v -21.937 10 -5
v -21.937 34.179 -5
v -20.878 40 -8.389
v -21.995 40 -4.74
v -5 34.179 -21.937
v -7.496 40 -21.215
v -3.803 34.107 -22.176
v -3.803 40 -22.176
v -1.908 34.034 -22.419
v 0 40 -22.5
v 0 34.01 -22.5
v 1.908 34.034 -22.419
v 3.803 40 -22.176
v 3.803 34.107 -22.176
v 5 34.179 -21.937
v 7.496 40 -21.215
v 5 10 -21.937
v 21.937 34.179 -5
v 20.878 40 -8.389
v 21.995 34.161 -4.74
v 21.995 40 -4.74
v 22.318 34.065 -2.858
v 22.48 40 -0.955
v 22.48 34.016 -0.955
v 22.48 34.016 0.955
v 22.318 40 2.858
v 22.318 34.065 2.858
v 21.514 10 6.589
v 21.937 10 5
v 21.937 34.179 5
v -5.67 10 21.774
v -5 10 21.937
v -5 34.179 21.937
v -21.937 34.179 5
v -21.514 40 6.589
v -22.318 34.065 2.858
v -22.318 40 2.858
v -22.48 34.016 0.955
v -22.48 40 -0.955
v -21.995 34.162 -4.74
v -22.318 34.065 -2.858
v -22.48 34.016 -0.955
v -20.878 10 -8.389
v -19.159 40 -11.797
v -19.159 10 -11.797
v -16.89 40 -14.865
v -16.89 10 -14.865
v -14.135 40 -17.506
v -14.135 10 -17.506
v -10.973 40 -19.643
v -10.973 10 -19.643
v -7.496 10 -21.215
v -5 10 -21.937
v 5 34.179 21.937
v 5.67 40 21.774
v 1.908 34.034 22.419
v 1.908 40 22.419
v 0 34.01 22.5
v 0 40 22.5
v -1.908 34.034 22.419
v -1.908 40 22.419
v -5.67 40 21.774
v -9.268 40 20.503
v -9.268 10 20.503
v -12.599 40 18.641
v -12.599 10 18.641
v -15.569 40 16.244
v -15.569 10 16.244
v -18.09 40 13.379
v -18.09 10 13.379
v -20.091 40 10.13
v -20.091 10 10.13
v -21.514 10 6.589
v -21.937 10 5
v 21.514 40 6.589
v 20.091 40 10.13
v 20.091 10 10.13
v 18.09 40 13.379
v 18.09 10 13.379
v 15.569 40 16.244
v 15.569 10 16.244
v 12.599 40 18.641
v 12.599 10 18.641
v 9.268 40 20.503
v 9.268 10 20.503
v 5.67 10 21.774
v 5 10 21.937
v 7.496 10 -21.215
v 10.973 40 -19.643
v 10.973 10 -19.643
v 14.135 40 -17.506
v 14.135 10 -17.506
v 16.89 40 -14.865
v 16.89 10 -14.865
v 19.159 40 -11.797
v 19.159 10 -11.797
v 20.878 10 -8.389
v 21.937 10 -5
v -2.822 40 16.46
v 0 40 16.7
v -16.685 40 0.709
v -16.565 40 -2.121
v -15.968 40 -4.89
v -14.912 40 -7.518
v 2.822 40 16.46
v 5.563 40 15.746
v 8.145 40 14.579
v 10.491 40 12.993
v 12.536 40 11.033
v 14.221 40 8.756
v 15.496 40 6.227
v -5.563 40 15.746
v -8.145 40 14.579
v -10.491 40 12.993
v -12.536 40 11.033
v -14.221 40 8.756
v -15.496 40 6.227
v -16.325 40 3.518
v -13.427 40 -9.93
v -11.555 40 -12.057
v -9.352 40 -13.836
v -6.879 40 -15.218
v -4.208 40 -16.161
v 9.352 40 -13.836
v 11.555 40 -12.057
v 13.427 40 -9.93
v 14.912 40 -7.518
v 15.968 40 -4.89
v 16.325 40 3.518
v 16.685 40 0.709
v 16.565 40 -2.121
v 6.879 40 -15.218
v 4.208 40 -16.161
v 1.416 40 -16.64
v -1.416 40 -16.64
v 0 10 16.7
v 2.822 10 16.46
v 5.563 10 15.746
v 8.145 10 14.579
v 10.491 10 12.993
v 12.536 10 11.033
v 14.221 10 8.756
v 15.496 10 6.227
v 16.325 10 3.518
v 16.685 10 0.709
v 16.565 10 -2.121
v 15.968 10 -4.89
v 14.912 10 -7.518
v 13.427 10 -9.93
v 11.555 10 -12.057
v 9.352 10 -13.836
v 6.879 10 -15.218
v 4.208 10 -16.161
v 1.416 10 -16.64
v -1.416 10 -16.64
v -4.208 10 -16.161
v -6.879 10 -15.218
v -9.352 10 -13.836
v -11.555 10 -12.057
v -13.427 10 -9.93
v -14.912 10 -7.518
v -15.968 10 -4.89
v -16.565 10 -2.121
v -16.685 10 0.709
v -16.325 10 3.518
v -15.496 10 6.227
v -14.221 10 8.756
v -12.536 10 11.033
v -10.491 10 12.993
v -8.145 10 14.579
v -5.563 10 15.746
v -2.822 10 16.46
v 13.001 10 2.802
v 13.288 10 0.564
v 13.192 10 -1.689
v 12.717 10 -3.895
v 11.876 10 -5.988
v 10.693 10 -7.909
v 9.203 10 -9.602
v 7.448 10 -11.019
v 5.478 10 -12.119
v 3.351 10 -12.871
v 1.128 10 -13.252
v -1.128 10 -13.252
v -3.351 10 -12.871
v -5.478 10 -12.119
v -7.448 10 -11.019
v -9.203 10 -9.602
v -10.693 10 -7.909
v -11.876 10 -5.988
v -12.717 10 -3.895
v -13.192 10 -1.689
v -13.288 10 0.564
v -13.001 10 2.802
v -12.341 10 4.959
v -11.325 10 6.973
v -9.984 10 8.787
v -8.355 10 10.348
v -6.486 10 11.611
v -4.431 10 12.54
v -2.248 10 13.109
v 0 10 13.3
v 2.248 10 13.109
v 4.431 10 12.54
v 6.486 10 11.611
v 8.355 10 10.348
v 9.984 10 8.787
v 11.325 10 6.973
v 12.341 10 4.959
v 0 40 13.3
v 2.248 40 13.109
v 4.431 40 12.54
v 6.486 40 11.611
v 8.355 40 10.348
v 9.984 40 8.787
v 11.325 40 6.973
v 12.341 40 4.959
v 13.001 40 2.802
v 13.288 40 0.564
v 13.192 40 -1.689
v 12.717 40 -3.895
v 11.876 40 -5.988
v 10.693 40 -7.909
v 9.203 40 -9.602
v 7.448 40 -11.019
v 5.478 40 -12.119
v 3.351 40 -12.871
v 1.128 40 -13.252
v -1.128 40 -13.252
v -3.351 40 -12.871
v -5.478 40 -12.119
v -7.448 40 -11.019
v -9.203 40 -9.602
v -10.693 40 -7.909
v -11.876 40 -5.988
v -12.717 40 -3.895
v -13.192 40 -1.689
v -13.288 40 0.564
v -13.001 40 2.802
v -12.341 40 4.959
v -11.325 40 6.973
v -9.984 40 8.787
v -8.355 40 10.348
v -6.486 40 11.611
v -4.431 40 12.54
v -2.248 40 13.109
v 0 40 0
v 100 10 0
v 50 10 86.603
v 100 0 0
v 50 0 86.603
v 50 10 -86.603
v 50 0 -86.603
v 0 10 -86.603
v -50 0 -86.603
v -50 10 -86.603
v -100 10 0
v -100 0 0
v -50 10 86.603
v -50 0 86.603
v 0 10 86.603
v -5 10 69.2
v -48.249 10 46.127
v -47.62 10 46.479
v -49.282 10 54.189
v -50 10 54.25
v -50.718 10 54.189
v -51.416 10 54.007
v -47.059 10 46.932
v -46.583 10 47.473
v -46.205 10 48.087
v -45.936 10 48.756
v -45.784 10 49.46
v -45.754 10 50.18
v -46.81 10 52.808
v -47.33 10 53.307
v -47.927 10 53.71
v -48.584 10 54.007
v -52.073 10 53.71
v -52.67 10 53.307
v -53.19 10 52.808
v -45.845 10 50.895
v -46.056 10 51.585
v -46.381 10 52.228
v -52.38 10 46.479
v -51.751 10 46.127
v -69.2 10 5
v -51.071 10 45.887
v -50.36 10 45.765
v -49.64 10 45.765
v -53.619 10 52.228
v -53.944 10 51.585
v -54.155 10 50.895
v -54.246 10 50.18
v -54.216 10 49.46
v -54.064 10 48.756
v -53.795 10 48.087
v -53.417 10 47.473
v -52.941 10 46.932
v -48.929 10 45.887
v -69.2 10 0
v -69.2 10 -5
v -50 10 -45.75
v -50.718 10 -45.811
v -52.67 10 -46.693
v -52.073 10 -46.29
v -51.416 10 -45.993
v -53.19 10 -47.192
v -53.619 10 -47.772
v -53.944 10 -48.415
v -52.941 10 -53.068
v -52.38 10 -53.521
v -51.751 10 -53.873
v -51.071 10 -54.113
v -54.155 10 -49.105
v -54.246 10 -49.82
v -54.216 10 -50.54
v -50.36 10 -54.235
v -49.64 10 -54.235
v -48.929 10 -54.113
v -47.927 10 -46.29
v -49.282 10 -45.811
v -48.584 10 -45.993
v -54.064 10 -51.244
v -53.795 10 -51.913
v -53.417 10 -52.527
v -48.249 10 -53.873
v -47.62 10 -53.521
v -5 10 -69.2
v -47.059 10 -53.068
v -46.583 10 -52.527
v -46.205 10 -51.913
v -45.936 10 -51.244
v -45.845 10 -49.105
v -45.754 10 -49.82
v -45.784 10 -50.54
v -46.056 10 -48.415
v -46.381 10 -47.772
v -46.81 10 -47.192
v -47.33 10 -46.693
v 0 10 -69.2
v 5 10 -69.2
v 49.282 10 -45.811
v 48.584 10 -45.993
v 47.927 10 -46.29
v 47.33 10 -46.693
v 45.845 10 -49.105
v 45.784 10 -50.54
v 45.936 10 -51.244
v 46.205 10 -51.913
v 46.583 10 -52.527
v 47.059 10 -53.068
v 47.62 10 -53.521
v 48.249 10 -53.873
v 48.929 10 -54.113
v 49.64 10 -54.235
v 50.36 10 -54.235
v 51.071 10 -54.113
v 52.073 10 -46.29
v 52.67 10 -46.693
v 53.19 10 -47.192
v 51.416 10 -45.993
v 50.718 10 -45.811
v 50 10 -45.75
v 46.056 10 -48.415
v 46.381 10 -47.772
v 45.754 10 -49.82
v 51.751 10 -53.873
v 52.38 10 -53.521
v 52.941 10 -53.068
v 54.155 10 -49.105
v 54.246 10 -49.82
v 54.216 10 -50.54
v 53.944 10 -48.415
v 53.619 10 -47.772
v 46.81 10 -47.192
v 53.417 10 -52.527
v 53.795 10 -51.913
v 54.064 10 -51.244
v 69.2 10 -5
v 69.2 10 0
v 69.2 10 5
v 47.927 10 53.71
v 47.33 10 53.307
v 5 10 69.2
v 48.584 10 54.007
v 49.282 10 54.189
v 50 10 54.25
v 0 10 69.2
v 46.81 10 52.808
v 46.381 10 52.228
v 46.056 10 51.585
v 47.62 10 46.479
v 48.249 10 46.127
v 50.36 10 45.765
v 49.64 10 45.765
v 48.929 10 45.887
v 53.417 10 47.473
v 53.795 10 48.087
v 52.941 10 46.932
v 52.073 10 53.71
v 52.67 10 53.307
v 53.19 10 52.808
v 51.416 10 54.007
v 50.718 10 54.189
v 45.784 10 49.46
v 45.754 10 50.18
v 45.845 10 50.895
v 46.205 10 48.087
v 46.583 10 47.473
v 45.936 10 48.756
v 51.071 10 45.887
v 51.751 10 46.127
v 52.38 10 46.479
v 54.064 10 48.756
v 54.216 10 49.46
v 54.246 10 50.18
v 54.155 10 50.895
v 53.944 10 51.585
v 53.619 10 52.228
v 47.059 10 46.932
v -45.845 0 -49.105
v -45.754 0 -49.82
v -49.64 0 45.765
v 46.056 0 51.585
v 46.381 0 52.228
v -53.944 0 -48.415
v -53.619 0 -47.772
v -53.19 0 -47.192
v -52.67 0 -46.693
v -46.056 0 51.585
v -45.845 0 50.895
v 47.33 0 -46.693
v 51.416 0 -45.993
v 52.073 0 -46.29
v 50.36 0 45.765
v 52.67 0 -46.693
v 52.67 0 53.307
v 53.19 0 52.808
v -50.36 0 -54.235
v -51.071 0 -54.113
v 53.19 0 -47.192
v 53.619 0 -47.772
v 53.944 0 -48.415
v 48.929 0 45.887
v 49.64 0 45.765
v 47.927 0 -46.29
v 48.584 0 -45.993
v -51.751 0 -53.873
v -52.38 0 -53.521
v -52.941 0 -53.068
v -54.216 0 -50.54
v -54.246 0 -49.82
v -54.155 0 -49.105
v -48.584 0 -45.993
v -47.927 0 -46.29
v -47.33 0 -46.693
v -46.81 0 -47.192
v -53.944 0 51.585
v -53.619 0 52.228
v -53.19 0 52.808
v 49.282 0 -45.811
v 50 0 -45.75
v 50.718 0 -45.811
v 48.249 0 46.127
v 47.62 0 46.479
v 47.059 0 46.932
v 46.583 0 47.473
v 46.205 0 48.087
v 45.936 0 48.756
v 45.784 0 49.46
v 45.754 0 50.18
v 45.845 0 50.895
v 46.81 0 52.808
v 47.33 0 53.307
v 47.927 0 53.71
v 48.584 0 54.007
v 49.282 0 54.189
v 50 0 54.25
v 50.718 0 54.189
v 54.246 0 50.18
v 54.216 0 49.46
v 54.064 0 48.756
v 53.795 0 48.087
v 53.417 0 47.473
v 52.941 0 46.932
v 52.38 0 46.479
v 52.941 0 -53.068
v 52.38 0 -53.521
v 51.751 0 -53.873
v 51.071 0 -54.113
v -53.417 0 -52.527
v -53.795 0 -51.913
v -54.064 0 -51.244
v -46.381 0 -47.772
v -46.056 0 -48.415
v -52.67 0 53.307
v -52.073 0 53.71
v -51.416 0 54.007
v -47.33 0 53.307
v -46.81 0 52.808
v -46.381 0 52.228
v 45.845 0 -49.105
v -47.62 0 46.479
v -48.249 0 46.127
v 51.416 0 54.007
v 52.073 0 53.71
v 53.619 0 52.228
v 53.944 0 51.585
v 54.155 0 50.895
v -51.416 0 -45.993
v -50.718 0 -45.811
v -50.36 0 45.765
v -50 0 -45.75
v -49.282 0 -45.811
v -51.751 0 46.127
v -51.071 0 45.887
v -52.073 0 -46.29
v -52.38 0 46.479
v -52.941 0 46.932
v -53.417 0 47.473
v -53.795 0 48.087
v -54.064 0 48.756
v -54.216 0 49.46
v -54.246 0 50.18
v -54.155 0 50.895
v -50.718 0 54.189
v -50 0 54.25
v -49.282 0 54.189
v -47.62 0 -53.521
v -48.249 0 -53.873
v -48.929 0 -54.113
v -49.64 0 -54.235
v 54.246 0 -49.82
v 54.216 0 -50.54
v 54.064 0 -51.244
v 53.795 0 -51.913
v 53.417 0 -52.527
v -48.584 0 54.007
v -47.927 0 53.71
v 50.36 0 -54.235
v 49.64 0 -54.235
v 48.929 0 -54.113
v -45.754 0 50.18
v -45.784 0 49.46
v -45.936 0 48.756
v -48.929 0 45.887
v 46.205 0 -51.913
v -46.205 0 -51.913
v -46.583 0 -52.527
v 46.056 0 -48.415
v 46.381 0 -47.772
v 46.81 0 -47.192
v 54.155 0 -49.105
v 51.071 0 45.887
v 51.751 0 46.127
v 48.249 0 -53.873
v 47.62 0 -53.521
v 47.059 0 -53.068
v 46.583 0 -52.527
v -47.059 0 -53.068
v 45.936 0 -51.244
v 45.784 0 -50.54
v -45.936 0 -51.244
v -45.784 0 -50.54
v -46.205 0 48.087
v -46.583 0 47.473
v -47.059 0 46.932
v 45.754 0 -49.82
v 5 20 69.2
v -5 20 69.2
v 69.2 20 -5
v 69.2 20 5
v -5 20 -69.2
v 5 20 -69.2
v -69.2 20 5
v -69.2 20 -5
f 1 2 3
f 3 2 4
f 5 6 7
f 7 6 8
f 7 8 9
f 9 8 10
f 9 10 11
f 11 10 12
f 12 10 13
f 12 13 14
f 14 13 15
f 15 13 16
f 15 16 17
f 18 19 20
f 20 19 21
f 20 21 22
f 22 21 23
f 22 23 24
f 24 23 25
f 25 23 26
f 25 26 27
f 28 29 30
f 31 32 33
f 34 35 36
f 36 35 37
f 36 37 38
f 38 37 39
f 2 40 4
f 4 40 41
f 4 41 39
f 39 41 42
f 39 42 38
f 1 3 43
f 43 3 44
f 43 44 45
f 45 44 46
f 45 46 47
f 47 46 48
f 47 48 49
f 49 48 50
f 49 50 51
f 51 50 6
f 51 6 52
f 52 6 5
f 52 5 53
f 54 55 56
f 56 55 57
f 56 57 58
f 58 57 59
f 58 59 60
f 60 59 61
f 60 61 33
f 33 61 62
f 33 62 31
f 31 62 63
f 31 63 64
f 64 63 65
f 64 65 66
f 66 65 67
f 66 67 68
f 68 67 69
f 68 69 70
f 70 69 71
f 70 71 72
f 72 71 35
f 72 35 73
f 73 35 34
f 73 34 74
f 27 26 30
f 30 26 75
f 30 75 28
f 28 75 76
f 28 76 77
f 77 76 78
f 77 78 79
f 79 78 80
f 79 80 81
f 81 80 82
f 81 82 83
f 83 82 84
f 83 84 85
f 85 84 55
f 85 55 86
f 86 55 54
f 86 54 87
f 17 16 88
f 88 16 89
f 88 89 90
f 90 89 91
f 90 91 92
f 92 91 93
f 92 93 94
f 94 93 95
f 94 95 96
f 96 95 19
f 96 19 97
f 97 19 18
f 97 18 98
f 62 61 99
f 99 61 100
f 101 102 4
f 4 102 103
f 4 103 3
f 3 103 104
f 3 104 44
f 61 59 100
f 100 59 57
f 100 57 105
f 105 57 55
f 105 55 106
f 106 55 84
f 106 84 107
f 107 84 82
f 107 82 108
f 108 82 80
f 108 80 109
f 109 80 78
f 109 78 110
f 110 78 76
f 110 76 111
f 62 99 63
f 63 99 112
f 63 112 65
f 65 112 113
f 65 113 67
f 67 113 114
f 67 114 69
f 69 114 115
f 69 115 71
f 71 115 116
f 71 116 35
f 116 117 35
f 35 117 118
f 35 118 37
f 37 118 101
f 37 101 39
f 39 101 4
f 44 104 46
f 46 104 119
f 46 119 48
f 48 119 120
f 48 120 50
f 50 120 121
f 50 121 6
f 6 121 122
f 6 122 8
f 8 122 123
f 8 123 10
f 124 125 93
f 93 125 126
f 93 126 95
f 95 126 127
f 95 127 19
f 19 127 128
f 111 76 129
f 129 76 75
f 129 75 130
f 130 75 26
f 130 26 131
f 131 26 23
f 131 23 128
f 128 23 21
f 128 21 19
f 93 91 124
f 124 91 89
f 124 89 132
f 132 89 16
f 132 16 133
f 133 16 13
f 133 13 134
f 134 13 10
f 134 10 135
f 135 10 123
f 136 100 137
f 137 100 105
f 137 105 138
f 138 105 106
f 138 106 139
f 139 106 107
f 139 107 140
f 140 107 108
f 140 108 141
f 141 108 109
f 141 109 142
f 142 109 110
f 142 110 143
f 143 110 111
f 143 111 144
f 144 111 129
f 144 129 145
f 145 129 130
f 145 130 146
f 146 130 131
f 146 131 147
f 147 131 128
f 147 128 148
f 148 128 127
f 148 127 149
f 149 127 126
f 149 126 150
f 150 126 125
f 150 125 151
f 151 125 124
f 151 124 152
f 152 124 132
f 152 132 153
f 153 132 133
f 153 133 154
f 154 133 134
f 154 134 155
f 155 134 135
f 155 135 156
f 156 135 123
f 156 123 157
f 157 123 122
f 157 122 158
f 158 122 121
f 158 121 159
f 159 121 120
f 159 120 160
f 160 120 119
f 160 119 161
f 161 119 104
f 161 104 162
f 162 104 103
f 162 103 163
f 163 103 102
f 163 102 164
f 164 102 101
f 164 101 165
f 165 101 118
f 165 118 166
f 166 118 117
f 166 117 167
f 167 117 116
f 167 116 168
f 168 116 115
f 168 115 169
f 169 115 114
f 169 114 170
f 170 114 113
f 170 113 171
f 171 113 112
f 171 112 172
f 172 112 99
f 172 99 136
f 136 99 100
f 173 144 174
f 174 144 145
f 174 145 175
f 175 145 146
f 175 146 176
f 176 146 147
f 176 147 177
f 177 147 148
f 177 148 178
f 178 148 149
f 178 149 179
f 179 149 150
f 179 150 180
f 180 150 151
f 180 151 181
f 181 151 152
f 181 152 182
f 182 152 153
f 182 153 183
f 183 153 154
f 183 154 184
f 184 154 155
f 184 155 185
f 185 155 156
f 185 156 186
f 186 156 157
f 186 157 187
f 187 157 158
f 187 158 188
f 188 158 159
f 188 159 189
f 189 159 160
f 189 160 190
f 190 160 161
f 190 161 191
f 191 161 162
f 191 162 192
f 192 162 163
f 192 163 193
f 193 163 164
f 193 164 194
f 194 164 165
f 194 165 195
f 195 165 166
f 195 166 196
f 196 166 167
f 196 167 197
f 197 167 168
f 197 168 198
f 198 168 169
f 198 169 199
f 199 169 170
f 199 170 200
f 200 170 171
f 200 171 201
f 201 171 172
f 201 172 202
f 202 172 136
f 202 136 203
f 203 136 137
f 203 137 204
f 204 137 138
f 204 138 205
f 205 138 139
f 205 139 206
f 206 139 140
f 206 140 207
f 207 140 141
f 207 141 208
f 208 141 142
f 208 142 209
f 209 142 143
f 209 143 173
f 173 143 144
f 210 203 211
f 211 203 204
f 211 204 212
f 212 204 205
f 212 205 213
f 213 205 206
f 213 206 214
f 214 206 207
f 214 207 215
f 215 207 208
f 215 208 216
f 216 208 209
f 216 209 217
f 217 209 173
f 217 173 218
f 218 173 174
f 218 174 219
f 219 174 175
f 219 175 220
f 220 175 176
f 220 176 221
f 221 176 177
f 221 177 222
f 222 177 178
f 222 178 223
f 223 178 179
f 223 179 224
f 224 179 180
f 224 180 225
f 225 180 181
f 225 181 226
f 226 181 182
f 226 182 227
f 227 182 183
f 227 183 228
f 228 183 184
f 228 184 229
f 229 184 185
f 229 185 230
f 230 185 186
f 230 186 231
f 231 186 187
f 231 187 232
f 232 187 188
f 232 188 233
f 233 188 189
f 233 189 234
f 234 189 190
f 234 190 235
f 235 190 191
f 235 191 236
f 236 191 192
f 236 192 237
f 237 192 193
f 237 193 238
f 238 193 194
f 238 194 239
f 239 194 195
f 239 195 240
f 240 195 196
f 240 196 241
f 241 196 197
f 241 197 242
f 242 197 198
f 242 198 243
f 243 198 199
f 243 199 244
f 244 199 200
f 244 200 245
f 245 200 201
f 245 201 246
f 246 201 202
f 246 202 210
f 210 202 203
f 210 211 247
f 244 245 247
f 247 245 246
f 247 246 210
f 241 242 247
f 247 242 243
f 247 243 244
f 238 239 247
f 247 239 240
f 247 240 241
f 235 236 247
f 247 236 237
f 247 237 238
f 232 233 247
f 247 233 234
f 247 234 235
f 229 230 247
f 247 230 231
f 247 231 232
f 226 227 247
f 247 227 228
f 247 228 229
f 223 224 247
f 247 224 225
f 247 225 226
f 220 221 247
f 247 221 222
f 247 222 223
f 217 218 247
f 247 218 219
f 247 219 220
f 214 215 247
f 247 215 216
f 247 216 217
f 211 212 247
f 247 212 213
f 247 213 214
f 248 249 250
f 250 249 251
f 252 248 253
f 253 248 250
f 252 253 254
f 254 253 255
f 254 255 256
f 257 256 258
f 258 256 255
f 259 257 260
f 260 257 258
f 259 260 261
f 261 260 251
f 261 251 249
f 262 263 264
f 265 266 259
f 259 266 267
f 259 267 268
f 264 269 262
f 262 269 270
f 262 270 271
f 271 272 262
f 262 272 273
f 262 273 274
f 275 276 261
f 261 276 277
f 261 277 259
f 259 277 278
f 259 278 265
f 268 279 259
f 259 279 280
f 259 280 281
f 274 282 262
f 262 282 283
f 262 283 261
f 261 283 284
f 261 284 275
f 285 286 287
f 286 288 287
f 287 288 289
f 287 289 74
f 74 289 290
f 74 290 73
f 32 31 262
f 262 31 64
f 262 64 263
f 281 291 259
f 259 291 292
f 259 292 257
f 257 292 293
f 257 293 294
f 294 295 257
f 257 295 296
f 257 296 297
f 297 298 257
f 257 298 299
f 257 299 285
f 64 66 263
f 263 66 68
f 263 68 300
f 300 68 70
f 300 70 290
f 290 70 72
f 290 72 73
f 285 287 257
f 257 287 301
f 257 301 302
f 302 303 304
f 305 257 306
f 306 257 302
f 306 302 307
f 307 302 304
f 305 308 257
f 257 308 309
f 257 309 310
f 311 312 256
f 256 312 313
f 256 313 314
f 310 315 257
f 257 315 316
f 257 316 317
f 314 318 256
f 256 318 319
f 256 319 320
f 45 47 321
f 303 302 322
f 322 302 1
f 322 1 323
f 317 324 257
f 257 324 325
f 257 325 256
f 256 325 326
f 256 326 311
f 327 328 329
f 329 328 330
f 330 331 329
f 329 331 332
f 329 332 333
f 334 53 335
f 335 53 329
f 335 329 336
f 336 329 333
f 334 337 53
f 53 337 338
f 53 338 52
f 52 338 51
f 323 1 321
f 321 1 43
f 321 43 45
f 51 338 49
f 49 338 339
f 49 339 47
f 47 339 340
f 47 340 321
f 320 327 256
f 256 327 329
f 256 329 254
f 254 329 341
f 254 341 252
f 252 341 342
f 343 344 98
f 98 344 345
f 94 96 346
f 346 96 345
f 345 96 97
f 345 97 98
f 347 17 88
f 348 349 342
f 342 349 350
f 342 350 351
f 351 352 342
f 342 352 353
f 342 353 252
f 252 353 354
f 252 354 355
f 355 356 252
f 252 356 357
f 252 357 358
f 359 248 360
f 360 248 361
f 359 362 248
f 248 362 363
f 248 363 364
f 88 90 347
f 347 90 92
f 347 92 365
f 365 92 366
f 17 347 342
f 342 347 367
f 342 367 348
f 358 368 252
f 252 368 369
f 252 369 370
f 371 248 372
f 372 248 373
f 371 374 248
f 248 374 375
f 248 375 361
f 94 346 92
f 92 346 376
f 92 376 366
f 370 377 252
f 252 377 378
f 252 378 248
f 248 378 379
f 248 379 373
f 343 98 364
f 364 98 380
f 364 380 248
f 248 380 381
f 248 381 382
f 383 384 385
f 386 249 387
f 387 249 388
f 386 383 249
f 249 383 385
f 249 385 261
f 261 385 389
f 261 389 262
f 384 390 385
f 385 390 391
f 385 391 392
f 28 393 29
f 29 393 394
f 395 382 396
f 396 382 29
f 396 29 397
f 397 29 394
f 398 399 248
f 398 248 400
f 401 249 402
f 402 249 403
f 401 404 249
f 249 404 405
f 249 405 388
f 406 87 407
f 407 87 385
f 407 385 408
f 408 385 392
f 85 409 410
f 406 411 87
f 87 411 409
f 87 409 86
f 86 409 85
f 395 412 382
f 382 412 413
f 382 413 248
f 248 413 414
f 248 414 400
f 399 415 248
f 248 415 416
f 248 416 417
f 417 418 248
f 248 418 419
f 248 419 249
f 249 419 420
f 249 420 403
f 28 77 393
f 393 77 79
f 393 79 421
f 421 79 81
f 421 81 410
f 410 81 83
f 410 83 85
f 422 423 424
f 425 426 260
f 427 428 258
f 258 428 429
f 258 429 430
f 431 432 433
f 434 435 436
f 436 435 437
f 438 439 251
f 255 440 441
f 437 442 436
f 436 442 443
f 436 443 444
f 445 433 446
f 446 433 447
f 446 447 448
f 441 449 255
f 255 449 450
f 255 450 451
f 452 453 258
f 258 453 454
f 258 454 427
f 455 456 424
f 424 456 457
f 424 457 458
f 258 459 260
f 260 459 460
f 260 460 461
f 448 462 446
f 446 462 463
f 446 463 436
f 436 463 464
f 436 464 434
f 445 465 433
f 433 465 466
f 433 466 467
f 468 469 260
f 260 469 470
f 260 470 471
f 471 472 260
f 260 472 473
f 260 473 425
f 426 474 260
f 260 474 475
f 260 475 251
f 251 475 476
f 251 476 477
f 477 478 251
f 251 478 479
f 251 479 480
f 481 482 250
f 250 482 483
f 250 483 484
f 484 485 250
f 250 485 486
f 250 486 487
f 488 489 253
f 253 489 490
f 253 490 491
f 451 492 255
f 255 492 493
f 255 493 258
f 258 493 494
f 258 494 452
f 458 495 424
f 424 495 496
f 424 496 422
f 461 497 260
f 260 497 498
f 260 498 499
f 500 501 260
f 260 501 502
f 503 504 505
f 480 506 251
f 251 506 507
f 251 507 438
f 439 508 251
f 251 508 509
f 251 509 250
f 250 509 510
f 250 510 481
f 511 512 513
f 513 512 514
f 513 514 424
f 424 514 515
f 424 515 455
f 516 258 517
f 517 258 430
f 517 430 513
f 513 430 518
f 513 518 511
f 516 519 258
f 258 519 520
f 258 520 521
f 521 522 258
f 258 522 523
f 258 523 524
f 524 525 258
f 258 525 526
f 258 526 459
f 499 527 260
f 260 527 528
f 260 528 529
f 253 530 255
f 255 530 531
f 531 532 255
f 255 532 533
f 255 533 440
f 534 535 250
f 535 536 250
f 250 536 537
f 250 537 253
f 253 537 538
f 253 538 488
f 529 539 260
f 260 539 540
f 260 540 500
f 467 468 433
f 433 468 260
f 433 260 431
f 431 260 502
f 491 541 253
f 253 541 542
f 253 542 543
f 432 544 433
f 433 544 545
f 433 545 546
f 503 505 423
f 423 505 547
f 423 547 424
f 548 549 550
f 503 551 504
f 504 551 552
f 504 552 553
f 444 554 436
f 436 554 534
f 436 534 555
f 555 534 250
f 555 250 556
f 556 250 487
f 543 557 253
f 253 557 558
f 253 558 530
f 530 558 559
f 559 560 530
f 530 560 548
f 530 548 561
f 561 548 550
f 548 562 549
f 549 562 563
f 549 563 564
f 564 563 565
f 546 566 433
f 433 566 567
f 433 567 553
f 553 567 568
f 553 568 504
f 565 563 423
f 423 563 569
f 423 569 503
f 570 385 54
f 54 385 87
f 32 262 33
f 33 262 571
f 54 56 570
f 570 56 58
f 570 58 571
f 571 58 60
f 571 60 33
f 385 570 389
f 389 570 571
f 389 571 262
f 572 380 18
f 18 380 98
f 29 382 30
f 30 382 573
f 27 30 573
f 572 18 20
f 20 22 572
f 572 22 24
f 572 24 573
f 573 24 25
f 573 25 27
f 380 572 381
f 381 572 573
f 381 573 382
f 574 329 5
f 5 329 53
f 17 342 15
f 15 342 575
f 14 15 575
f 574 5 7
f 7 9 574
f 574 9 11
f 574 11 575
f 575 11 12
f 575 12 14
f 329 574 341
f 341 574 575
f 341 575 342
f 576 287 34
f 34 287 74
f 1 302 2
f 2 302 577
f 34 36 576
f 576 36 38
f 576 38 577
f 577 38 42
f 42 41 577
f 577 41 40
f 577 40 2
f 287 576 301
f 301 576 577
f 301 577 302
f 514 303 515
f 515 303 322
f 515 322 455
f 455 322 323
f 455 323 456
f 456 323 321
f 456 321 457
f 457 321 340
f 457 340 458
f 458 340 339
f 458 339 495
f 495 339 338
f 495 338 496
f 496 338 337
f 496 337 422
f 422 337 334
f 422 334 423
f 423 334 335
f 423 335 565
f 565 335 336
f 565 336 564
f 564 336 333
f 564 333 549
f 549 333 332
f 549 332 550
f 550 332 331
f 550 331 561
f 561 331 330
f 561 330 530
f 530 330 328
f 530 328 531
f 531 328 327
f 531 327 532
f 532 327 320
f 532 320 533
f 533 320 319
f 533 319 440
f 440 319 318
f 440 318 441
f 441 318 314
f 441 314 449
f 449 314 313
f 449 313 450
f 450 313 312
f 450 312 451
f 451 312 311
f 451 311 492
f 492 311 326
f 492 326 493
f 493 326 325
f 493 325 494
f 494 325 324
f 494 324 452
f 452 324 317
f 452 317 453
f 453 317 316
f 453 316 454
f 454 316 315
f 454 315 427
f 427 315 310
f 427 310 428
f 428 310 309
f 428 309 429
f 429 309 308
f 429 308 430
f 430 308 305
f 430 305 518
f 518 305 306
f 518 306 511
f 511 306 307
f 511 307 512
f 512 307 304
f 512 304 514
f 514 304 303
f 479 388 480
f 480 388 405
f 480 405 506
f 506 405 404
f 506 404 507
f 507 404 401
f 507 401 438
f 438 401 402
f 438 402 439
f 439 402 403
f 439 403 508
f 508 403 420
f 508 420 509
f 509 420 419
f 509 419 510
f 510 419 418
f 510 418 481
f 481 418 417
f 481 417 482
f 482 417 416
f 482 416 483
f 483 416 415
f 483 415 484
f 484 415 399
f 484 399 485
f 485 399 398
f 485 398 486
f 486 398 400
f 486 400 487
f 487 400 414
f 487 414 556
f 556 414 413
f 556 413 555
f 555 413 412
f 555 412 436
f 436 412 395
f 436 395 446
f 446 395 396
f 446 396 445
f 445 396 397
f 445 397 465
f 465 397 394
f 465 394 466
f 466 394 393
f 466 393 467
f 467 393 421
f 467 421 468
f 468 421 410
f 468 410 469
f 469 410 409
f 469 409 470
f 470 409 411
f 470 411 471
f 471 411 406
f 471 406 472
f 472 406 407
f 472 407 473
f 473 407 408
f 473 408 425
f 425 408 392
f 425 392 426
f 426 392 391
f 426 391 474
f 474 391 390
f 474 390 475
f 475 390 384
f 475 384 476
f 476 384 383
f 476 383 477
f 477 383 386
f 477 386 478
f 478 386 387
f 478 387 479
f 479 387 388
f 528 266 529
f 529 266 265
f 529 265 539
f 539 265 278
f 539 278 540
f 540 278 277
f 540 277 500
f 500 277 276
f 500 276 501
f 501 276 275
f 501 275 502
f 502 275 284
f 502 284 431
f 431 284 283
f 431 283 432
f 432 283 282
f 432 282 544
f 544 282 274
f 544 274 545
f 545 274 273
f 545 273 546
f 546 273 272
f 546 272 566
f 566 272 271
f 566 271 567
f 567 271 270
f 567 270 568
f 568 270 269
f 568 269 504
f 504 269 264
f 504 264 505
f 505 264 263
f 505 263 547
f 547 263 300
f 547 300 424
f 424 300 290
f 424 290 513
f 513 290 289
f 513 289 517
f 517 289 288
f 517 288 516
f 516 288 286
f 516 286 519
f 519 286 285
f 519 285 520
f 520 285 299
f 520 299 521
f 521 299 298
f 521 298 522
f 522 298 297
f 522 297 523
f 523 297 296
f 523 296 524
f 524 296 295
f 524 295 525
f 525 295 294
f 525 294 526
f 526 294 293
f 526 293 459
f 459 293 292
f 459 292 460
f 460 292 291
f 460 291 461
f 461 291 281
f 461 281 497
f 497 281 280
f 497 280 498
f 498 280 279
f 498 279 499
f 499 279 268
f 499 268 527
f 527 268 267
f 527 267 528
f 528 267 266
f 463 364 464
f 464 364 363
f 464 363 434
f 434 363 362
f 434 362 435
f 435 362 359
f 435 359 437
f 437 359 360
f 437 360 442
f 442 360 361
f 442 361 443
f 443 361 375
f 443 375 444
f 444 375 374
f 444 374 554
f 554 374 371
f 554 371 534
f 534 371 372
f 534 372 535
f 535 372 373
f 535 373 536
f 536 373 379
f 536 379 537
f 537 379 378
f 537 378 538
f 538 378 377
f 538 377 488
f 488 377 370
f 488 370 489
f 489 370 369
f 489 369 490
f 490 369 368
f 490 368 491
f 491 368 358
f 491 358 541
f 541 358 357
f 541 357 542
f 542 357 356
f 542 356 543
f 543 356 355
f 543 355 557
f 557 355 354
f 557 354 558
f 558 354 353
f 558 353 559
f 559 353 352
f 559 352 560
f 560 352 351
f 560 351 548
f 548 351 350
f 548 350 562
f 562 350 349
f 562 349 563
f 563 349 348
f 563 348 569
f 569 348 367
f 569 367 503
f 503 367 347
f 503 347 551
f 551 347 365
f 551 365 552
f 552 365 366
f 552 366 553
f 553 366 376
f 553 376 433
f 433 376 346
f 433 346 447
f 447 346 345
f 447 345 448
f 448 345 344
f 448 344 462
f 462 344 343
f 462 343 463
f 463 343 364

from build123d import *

# Parameters (mm, degrees)
CROQUIS1_R              = 22.5
SALIENTE_EXTRUIR1_DEPTH = 40
CROQUIS2_R              = 16.7
CROQUIS2_R_2            = 13.3
CORTAR_EXTRUIR1_DEPTH   = 30
SALIENTE_EXTRUIR2_DEPTH = 10
SALIENTE_EXTRUIR5_DEPTH = 5
MATRIZC1_COUNT          = 4
CROQUIS5_R              = 4.25
CORTAR_EXTRUIR2_DEPTH   = 136.646599663


with BuildPart() as part:
    # Croquis1 → Saliente-Extruir1 (new body)
    with BuildSketch(Plane(origin=(0, 0, 0), x_dir=(1, 0, 0), z_dir=(0, 1, 0))):
        with Locations(Location((0, 0, 0), (0, 0, 270))):
            Circle(CROQUIS1_R)
    extrude(amount=SALIENTE_EXTRUIR1_DEPTH)

    # Croquis2 → Cortar-Extruir1 (cut)
    with BuildSketch(Plane(origin=(0, 40, 0), x_dir=(1, 0, 0), z_dir=(0, 1, 0))):
        with Locations(Location((0, 0, 0), (0, 0, 270))):
            Circle(CROQUIS2_R)
        with Locations(Location((0, 0, 0), (0, 0, 270))):
            Circle(CROQUIS2_R_2, mode=Mode.SUBTRACT)
    extrude(amount=-CORTAR_EXTRUIR1_DEPTH, mode=Mode.SUBTRACT)

    # Croquis3 → Saliente-Extruir2 (add)
    with BuildSketch(Plane.XZ):
        Polygon((50, 86.602540378), (-50, 86.602540378), (-100, 0), (-50, -86.602540378), (50, -86.602540378), (100, 0), align=None)
    extrude(amount=-SALIENTE_EXTRUIR2_DEPTH)

    # Croquis4 → Saliente-Extruir5 (add, symmetric)
    with BuildSketch(Plane(origin=(0, 0, 0), x_dir=(0, 0, -1), z_dir=(1, 0, 0))):
        Polygon((-69.2, 10), (-19.2, 10), (-19.2, 35), (-69.2, 20), align=None)
    saliente_extruir5 = extrude(amount=SALIENTE_EXTRUIR5_DEPTH, both=True)

    # MatrizC1: Saliente-Extruir5 ×4 about axis
    matrizc1_axis = Axis((0, 0, 0), (0, 1, 0))
    for i in range(1, MATRIZC1_COUNT):
        add(saliente_extruir5.rotate(matrizc1_axis, i * 360 / MATRIZC1_COUNT))

    # Croquis5 → Cortar-Extruir2 (cut, through all)
    with BuildSketch(Plane(origin=(0, 10, 0), x_dir=(1, 0, 0), z_dir=(0, 1, 0))):
        with Locations(Location((-50, 50, 0), (0, 0, 270))):
            Circle(CROQUIS5_R)
        with Locations(Location((50, 50, 0), (0, 0, 270))):
            Circle(CROQUIS5_R)
        with Locations(Location((-50, -50, 0), (0, 0, 270))):
            Circle(CROQUIS5_R)
        with Locations(Location((50, -50, 0), (0, 0, 270))):
            Circle(CROQUIS5_R)
    extrude(amount=-CORTAR_EXTRUIR2_DEPTH, mode=Mode.SUBTRACT)


solid = part.part
